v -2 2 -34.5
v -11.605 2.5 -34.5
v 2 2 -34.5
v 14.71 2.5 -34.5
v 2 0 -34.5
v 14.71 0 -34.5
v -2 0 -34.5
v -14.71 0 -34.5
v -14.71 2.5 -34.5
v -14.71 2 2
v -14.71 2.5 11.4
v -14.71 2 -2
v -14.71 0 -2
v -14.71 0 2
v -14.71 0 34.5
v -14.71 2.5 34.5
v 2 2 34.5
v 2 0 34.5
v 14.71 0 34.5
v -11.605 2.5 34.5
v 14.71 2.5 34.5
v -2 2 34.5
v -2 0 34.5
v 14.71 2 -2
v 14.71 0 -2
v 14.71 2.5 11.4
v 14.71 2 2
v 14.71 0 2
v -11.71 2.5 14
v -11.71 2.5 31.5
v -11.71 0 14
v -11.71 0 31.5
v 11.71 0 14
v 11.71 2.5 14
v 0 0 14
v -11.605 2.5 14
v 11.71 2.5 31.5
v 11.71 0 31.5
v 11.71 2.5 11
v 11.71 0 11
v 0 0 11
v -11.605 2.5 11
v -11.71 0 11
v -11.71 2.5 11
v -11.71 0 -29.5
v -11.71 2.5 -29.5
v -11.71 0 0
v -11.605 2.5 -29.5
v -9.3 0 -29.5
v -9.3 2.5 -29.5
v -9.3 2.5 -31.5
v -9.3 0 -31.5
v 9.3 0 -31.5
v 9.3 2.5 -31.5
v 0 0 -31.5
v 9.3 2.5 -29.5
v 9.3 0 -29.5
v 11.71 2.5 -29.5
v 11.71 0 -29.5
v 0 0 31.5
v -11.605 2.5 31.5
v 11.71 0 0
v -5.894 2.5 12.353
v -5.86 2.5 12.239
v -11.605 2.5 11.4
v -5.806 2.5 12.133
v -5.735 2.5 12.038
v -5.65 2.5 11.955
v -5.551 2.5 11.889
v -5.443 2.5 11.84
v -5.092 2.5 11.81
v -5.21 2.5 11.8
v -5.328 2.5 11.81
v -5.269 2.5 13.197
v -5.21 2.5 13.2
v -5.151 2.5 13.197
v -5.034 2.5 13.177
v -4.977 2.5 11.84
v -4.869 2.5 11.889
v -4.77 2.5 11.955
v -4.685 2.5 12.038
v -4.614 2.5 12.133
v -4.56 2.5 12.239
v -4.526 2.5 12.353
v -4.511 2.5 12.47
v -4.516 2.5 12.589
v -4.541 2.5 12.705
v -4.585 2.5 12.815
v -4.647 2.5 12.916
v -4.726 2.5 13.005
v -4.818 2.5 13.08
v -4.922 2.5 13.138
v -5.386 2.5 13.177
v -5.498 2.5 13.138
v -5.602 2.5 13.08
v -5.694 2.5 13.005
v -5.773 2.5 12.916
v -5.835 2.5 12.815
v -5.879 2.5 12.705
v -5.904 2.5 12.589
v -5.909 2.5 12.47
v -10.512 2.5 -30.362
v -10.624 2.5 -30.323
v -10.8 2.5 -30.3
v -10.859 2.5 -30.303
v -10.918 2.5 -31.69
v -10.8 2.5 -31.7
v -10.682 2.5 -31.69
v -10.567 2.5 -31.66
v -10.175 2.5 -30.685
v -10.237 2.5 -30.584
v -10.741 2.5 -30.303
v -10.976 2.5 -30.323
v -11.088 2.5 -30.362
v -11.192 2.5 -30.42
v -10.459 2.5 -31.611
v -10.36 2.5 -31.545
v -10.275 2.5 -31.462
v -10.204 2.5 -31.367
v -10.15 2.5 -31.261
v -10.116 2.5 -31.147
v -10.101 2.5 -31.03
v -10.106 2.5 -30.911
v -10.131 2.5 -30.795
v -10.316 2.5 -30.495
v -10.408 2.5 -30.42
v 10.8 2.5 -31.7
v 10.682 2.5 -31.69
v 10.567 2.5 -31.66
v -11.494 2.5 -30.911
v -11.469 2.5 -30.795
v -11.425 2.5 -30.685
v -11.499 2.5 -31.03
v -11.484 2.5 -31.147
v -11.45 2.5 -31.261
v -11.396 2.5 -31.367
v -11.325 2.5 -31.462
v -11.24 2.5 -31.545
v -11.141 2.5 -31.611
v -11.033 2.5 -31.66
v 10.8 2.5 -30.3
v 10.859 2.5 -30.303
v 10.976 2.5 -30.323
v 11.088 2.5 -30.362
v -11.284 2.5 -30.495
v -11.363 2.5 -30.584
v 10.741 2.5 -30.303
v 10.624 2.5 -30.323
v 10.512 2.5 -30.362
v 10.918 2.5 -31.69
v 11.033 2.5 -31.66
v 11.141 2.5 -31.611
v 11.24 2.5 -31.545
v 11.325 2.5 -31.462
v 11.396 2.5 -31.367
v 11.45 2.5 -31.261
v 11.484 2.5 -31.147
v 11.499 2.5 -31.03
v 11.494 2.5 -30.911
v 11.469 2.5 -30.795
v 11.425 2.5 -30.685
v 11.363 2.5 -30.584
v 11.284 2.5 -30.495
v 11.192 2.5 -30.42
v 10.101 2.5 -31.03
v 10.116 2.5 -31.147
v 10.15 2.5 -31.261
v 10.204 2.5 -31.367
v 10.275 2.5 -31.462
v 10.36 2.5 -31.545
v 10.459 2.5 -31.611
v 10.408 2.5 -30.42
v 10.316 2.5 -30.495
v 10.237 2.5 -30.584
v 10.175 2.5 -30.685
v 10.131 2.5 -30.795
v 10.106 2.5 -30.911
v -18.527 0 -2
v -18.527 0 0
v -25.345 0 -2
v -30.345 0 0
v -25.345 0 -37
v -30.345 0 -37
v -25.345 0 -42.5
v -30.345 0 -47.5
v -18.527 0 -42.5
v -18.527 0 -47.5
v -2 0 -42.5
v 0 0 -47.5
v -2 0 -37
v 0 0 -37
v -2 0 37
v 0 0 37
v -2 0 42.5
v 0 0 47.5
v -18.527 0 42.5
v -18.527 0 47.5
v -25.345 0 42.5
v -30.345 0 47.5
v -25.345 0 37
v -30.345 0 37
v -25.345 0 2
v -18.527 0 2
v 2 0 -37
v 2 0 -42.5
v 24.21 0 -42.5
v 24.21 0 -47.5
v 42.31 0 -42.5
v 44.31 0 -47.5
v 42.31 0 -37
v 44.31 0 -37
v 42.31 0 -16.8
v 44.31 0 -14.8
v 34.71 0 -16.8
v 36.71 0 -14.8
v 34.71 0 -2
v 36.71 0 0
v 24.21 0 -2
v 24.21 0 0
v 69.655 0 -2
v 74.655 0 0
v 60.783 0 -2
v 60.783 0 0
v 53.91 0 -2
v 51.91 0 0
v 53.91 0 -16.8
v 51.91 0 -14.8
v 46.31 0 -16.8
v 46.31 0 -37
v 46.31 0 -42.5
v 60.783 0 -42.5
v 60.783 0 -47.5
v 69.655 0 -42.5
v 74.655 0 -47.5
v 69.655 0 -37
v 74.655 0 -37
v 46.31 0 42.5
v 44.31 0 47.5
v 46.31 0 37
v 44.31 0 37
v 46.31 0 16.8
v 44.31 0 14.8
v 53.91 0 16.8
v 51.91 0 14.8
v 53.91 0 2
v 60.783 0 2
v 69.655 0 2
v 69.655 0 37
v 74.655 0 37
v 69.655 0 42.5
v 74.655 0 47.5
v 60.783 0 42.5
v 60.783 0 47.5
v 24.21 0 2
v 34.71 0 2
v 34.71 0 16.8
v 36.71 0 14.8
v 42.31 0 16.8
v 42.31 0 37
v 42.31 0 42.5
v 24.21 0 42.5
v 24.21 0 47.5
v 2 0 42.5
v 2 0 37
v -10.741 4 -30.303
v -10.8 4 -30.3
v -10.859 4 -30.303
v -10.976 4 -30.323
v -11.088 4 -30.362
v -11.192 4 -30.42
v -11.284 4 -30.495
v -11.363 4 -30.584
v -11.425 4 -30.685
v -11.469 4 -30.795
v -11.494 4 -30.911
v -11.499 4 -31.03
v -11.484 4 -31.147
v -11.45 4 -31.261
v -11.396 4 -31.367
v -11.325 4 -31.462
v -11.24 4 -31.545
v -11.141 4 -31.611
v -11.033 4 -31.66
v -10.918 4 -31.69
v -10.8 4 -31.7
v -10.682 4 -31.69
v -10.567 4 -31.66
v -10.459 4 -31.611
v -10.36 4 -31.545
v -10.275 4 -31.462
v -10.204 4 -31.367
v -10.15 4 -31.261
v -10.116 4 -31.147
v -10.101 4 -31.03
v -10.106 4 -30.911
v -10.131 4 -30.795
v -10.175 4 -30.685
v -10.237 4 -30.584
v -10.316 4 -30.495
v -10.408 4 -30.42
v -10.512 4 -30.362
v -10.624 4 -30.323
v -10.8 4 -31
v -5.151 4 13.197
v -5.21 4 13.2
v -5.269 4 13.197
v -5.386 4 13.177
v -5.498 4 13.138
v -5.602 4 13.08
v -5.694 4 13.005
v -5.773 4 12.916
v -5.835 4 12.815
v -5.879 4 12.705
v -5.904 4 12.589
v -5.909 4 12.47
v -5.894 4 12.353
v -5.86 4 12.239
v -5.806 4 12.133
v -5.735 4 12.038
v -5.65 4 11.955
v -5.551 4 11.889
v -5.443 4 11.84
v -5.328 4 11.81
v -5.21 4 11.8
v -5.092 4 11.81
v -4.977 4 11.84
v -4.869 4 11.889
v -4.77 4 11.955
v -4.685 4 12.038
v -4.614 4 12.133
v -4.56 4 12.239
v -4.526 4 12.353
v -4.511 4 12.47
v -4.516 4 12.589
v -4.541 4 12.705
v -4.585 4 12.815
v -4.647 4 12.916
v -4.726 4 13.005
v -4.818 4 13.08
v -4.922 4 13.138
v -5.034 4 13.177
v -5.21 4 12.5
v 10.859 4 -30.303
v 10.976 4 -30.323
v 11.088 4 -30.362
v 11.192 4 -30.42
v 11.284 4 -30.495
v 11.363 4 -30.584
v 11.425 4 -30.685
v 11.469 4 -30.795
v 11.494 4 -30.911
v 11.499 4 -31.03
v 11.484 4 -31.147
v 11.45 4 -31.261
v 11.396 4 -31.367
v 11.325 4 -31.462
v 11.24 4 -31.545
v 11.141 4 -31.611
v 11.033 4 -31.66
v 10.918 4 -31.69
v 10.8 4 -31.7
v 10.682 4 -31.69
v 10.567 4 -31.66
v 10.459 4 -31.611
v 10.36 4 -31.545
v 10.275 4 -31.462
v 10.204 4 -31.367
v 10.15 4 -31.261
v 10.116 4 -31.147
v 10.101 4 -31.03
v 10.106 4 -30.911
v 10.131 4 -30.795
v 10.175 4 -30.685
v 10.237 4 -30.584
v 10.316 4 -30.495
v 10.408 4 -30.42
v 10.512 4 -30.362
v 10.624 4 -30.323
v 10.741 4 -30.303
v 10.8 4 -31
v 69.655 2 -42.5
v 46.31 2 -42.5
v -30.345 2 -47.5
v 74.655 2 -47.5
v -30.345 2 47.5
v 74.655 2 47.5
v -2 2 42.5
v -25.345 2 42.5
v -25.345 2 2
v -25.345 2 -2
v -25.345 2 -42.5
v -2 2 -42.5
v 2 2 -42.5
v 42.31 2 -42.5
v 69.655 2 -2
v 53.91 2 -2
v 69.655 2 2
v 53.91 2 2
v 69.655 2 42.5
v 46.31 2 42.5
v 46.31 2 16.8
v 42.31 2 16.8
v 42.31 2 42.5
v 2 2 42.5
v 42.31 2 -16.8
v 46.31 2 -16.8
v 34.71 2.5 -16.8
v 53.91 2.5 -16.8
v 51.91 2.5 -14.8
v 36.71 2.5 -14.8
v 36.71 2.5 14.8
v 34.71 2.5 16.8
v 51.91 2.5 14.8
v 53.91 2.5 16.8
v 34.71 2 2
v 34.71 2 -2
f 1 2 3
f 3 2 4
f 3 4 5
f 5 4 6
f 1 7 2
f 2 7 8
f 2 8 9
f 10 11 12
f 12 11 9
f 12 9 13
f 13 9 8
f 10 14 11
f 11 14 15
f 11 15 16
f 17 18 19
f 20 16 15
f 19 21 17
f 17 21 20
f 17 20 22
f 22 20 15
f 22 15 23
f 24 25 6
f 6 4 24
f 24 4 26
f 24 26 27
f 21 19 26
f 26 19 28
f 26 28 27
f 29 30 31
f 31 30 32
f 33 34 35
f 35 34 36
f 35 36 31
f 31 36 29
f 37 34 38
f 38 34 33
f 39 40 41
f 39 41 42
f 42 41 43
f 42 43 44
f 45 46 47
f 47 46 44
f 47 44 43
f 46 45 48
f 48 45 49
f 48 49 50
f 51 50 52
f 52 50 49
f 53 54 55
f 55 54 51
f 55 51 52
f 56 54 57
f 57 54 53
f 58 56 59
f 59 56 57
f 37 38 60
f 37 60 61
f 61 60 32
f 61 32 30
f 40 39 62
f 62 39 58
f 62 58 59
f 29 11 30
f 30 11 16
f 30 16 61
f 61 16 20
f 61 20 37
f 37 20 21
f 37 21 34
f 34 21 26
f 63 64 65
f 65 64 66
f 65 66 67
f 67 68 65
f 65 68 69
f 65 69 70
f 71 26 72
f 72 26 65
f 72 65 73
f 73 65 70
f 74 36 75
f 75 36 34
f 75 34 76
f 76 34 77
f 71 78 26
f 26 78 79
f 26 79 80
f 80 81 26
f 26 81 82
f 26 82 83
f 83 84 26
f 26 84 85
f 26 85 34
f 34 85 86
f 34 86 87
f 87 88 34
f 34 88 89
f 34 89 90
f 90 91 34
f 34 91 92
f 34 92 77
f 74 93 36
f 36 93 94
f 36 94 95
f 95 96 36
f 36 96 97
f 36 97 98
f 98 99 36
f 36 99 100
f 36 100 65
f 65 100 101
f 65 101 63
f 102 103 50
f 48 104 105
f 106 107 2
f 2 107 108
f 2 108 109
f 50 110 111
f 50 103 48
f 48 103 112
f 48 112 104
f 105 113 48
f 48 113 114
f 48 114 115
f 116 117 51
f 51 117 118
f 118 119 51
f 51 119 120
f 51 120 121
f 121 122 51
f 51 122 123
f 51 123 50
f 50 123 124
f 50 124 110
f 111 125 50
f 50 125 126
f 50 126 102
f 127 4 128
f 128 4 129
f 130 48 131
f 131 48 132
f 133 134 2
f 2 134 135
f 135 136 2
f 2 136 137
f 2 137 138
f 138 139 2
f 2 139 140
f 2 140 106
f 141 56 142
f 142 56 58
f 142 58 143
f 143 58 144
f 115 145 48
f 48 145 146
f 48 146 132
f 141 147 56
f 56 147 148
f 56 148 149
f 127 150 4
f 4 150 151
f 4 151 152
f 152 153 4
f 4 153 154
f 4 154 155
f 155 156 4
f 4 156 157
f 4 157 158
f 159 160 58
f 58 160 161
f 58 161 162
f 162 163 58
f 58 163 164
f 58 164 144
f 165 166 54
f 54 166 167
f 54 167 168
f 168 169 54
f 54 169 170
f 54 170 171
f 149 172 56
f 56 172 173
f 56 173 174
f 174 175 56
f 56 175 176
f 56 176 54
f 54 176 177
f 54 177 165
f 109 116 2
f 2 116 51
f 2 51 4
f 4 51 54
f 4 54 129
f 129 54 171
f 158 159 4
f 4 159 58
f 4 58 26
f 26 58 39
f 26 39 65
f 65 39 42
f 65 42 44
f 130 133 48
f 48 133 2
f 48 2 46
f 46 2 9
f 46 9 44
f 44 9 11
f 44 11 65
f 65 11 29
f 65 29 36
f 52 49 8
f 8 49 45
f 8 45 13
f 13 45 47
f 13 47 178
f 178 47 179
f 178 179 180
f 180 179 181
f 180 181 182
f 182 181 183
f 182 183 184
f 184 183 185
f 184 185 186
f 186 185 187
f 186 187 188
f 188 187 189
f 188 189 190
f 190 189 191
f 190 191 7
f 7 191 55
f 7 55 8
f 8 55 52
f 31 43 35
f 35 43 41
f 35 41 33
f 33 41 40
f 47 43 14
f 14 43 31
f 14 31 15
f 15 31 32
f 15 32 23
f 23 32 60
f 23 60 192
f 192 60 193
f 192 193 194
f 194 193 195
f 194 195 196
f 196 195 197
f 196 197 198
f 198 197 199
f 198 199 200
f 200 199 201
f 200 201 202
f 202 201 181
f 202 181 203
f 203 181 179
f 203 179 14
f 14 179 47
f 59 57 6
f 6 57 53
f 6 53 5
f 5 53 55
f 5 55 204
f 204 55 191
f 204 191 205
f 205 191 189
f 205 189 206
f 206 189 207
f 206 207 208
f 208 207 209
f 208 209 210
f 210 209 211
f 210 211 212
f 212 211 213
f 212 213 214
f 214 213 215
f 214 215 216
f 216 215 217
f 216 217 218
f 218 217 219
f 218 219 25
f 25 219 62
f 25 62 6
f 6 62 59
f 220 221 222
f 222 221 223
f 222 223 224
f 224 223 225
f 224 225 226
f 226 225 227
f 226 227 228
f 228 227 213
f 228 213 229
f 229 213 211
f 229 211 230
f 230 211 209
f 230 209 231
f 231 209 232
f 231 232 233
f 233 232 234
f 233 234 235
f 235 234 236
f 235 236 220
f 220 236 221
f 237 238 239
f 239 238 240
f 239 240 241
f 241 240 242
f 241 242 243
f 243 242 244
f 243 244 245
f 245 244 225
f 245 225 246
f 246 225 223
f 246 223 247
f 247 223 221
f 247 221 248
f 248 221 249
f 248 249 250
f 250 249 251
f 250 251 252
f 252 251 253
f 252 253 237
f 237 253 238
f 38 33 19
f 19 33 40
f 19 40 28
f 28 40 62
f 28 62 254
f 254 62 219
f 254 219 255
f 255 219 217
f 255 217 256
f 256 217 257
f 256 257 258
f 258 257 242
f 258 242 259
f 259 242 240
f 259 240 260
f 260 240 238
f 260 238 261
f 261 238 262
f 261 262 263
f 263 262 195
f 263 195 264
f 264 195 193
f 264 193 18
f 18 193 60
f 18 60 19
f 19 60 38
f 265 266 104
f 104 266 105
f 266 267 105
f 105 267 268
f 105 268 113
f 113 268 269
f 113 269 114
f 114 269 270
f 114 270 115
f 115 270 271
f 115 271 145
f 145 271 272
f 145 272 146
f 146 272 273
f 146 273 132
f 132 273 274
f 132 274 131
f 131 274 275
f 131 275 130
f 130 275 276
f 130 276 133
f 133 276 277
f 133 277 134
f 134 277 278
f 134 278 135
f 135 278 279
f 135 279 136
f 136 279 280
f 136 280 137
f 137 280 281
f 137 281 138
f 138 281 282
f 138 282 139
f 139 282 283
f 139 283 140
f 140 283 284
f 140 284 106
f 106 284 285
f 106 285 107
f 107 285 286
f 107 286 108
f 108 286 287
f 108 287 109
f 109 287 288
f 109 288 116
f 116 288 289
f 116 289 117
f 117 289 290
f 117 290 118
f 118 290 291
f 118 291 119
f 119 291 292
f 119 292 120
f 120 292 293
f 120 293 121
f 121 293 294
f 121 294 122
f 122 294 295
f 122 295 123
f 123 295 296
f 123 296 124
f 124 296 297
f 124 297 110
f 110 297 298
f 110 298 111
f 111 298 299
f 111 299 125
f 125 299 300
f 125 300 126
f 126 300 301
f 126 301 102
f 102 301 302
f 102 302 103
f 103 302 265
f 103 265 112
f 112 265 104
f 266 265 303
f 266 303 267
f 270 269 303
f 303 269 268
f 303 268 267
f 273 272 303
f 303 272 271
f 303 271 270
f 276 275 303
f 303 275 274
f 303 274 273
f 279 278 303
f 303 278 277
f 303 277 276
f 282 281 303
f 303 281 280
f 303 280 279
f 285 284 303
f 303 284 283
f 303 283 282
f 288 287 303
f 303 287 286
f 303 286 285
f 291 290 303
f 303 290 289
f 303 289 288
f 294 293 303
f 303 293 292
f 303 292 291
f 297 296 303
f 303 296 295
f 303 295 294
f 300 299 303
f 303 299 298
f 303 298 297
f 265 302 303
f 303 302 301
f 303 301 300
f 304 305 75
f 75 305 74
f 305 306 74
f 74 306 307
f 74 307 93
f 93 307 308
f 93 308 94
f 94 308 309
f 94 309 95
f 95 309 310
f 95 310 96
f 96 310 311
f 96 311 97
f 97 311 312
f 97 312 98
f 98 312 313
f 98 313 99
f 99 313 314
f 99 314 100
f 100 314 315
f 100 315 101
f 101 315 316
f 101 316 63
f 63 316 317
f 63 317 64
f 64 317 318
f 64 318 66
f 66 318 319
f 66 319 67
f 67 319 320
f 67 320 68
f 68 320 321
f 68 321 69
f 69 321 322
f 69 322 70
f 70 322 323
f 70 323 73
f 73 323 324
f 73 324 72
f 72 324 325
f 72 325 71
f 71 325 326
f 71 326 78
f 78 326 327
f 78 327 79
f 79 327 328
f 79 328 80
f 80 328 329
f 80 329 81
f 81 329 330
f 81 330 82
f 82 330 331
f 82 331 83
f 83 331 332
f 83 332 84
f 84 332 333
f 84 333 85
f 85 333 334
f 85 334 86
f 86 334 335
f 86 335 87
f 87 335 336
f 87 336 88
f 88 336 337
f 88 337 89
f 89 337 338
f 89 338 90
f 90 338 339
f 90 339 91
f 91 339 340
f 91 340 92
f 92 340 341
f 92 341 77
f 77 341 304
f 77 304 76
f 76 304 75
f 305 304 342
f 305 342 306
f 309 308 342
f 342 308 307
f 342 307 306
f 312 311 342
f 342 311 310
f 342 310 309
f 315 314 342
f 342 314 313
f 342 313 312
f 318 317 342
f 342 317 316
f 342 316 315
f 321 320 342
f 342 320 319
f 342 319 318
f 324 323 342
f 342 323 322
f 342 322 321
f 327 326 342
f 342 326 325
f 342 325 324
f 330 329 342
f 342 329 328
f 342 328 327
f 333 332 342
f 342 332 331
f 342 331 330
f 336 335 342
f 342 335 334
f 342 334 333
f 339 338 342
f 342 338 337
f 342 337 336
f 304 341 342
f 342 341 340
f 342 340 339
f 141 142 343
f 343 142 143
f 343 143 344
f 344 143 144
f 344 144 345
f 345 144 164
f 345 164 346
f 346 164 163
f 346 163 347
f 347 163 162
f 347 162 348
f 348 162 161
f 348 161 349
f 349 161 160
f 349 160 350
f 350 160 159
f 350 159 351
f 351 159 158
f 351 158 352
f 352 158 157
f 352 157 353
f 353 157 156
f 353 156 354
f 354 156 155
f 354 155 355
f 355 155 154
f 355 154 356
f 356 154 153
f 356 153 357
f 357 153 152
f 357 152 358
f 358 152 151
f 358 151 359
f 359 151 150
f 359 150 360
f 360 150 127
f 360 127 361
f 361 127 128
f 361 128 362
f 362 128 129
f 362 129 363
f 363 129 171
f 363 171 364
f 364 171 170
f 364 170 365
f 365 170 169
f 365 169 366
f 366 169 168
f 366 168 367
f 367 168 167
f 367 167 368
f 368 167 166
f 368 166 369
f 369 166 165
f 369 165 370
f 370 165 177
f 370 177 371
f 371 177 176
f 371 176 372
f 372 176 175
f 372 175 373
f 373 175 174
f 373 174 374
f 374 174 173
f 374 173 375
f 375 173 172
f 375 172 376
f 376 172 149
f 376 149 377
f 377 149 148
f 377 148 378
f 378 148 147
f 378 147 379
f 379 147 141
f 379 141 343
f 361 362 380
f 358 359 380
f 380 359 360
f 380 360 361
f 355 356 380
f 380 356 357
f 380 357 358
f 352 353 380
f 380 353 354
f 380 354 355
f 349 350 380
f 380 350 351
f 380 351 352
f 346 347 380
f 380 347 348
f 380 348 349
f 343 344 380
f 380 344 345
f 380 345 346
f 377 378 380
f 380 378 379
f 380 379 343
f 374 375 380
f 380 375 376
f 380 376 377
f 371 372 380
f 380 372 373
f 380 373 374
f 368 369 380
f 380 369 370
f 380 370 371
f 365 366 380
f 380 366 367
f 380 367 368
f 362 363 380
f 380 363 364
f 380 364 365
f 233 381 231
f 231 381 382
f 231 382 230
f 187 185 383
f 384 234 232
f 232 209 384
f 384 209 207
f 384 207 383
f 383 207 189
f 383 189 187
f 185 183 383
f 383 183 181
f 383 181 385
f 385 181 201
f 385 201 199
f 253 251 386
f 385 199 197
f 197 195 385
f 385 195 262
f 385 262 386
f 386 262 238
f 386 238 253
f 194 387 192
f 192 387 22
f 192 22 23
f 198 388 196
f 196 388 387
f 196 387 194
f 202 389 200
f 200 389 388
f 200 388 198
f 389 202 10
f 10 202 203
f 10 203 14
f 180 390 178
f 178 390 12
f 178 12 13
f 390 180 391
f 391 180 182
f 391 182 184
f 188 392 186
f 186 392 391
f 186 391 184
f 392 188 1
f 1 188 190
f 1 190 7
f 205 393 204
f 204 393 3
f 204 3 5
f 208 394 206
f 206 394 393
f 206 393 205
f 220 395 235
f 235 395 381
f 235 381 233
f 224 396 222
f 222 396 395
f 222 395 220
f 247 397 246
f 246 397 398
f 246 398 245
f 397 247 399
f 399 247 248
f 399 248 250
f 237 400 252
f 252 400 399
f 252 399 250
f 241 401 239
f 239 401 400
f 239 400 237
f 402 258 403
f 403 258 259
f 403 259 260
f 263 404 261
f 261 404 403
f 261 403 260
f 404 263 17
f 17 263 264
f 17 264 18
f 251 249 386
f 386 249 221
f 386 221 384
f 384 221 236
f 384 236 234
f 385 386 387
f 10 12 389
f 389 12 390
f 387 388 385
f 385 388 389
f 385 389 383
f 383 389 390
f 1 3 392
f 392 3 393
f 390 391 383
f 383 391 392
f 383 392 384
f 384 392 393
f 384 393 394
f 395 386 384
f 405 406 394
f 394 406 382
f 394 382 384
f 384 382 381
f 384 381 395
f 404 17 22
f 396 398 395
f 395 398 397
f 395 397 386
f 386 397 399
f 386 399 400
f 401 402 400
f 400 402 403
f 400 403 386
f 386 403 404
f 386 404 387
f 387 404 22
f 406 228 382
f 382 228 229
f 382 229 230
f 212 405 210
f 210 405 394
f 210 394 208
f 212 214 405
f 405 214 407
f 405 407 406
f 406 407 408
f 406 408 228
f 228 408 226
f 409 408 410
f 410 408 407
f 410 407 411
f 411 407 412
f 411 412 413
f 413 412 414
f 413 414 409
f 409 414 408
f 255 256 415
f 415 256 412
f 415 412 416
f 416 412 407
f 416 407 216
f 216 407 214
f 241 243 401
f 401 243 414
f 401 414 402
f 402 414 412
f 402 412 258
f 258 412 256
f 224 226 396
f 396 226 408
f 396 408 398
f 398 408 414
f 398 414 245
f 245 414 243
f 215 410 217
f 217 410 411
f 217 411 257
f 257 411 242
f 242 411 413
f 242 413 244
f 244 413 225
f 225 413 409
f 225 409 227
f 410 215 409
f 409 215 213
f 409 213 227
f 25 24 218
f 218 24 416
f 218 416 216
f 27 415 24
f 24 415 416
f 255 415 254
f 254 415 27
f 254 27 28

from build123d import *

# Parameters (mm, degrees)
SKETCH2_W           = 29.42
SKETCH2_H           = 69
SKETCH2_W_2         = 23.42
SKETCH2_H_2         = 17.5
BOSS_EXTRUDE1_DEPTH = 2.5
SKETCH2_3_R         = 0.7
BOSS_EXTRUDE2_DEPTH = 4
SKETCH3_W           = 19.2
SKETCH3_H           = 33.6
SKETCH3_W_2         = 15.2
SKETCH3_H_2         = 29.6
BOSS_EXTRUDE3_DEPTH = 2.5
SKETCH4_W           = 105
SKETCH4_H           = 95
SKETCH4_W_2         = 20
SKETCH4_H_2         = 4
BOSS_EXTRUDE4_DEPTH = 2


with BuildPart() as part:
    # Sketch2 → Boss-Extrude1 (new body)
    with BuildSketch(Plane(origin=(0, 0, 0), x_dir=(1, 0, 0), z_dir=(0, 1, 0))):
        Rectangle(SKETCH2_W, SKETCH2_H)
        Polygon((11.71, -11), (-11.71, -11), (-11.71, 29.5), (-9.3, 29.5), (-9.3, 31.5), (9.3, 31.5), (9.3, 29.5), (11.71, 29.5), align=None, mode=Mode.SUBTRACT)
        with Locations((0, -22.75)):
            Rectangle(SKETCH2_W_2, SKETCH2_H_2, mode=Mode.SUBTRACT)
    extrude(amount=BOSS_EXTRUDE1_DEPTH)

    # Sketch2<3> → Boss-Extrude2 (add)
    with BuildSketch(Plane(origin=(0, 0, 0), x_dir=(1, 0, 0), z_dir=(0, 1, 0))):
        with Locations(Location((-10.8, 31, 0), (0, 0, 270))):
            Circle(SKETCH2_3_R)
        with Locations(Location((-5.21, -12.5, 0), (0, 0, 270))):
            Circle(SKETCH2_3_R)
        with Locations(Location((10.8, 31, 0), (0, 0, 90))):
            Circle(SKETCH2_3_R)
    extrude(amount=BOSS_EXTRUDE2_DEPTH)



with BuildPart() as body_2:
    # Sketch3 → Boss-Extrude3 (new body)
    with BuildSketch(Plane(origin=(0, 0, 0), x_dir=(1, 0, 0), z_dir=(0, 1, 0))):
        with Locations((44.31, 0)):
            Rectangle(SKETCH3_W, SKETCH3_H)
        with Locations((44.31, 0)):
            Rectangle(SKETCH3_W_2, SKETCH3_H_2, mode=Mode.SUBTRACT)
    extrude(amount=BOSS_EXTRUDE3_DEPTH)


with BuildPart() as part_1:
    add(part.part)

    add(body_2.part)  # Boss-Extrude4 merges body 2
    # Sketch4 → Boss-Extrude4 (add)
    # profile 1 of 2: a face of its own
    with BuildSketch(Plane(origin=(0, 0, 0), x_dir=(1, 0, 0), z_dir=(0, 1, 0))):
        with Locations((22.155, 0)):
            Rectangle(SKETCH4_W, SKETCH4_H)
        Polygon((-25.345, -42.5), (-25.345, -2), (-14.71, -2), (-14.71, 2), (-25.345, 2), (-25.345, 42.5), (-2, 42.5), (-2, 34.5), (2, 34.5), (2, 42.5), (42.31, 42.5), (42.31, 16.8), (46.31, 16.8), (46.31, 42.5), (69.655, 42.5), (69.655, 2), (53.91, 2), (53.91, -2), (69.655, -2), (69.655, -42.5), (46.31, -42.5), (46.31, -16.8), (42.31, -16.8), (42.31, -42.5), (2, -42.5), (2, -34.5), (-2, -34.5), (-2, -42.5), align=None, mode=Mode.SUBTRACT)
    # profile 2 of 2: a face of its own
    with BuildSketch(Plane(origin=(0, 0, 0), x_dir=(1, 0, 0), z_dir=(0, 1, 0))):
        with Locations((24.71, 0)):
            Rectangle(SKETCH4_W_2, SKETCH4_H_2)
    extrude(amount=BOSS_EXTRUDE4_DEPTH)


solid = part_1.part
